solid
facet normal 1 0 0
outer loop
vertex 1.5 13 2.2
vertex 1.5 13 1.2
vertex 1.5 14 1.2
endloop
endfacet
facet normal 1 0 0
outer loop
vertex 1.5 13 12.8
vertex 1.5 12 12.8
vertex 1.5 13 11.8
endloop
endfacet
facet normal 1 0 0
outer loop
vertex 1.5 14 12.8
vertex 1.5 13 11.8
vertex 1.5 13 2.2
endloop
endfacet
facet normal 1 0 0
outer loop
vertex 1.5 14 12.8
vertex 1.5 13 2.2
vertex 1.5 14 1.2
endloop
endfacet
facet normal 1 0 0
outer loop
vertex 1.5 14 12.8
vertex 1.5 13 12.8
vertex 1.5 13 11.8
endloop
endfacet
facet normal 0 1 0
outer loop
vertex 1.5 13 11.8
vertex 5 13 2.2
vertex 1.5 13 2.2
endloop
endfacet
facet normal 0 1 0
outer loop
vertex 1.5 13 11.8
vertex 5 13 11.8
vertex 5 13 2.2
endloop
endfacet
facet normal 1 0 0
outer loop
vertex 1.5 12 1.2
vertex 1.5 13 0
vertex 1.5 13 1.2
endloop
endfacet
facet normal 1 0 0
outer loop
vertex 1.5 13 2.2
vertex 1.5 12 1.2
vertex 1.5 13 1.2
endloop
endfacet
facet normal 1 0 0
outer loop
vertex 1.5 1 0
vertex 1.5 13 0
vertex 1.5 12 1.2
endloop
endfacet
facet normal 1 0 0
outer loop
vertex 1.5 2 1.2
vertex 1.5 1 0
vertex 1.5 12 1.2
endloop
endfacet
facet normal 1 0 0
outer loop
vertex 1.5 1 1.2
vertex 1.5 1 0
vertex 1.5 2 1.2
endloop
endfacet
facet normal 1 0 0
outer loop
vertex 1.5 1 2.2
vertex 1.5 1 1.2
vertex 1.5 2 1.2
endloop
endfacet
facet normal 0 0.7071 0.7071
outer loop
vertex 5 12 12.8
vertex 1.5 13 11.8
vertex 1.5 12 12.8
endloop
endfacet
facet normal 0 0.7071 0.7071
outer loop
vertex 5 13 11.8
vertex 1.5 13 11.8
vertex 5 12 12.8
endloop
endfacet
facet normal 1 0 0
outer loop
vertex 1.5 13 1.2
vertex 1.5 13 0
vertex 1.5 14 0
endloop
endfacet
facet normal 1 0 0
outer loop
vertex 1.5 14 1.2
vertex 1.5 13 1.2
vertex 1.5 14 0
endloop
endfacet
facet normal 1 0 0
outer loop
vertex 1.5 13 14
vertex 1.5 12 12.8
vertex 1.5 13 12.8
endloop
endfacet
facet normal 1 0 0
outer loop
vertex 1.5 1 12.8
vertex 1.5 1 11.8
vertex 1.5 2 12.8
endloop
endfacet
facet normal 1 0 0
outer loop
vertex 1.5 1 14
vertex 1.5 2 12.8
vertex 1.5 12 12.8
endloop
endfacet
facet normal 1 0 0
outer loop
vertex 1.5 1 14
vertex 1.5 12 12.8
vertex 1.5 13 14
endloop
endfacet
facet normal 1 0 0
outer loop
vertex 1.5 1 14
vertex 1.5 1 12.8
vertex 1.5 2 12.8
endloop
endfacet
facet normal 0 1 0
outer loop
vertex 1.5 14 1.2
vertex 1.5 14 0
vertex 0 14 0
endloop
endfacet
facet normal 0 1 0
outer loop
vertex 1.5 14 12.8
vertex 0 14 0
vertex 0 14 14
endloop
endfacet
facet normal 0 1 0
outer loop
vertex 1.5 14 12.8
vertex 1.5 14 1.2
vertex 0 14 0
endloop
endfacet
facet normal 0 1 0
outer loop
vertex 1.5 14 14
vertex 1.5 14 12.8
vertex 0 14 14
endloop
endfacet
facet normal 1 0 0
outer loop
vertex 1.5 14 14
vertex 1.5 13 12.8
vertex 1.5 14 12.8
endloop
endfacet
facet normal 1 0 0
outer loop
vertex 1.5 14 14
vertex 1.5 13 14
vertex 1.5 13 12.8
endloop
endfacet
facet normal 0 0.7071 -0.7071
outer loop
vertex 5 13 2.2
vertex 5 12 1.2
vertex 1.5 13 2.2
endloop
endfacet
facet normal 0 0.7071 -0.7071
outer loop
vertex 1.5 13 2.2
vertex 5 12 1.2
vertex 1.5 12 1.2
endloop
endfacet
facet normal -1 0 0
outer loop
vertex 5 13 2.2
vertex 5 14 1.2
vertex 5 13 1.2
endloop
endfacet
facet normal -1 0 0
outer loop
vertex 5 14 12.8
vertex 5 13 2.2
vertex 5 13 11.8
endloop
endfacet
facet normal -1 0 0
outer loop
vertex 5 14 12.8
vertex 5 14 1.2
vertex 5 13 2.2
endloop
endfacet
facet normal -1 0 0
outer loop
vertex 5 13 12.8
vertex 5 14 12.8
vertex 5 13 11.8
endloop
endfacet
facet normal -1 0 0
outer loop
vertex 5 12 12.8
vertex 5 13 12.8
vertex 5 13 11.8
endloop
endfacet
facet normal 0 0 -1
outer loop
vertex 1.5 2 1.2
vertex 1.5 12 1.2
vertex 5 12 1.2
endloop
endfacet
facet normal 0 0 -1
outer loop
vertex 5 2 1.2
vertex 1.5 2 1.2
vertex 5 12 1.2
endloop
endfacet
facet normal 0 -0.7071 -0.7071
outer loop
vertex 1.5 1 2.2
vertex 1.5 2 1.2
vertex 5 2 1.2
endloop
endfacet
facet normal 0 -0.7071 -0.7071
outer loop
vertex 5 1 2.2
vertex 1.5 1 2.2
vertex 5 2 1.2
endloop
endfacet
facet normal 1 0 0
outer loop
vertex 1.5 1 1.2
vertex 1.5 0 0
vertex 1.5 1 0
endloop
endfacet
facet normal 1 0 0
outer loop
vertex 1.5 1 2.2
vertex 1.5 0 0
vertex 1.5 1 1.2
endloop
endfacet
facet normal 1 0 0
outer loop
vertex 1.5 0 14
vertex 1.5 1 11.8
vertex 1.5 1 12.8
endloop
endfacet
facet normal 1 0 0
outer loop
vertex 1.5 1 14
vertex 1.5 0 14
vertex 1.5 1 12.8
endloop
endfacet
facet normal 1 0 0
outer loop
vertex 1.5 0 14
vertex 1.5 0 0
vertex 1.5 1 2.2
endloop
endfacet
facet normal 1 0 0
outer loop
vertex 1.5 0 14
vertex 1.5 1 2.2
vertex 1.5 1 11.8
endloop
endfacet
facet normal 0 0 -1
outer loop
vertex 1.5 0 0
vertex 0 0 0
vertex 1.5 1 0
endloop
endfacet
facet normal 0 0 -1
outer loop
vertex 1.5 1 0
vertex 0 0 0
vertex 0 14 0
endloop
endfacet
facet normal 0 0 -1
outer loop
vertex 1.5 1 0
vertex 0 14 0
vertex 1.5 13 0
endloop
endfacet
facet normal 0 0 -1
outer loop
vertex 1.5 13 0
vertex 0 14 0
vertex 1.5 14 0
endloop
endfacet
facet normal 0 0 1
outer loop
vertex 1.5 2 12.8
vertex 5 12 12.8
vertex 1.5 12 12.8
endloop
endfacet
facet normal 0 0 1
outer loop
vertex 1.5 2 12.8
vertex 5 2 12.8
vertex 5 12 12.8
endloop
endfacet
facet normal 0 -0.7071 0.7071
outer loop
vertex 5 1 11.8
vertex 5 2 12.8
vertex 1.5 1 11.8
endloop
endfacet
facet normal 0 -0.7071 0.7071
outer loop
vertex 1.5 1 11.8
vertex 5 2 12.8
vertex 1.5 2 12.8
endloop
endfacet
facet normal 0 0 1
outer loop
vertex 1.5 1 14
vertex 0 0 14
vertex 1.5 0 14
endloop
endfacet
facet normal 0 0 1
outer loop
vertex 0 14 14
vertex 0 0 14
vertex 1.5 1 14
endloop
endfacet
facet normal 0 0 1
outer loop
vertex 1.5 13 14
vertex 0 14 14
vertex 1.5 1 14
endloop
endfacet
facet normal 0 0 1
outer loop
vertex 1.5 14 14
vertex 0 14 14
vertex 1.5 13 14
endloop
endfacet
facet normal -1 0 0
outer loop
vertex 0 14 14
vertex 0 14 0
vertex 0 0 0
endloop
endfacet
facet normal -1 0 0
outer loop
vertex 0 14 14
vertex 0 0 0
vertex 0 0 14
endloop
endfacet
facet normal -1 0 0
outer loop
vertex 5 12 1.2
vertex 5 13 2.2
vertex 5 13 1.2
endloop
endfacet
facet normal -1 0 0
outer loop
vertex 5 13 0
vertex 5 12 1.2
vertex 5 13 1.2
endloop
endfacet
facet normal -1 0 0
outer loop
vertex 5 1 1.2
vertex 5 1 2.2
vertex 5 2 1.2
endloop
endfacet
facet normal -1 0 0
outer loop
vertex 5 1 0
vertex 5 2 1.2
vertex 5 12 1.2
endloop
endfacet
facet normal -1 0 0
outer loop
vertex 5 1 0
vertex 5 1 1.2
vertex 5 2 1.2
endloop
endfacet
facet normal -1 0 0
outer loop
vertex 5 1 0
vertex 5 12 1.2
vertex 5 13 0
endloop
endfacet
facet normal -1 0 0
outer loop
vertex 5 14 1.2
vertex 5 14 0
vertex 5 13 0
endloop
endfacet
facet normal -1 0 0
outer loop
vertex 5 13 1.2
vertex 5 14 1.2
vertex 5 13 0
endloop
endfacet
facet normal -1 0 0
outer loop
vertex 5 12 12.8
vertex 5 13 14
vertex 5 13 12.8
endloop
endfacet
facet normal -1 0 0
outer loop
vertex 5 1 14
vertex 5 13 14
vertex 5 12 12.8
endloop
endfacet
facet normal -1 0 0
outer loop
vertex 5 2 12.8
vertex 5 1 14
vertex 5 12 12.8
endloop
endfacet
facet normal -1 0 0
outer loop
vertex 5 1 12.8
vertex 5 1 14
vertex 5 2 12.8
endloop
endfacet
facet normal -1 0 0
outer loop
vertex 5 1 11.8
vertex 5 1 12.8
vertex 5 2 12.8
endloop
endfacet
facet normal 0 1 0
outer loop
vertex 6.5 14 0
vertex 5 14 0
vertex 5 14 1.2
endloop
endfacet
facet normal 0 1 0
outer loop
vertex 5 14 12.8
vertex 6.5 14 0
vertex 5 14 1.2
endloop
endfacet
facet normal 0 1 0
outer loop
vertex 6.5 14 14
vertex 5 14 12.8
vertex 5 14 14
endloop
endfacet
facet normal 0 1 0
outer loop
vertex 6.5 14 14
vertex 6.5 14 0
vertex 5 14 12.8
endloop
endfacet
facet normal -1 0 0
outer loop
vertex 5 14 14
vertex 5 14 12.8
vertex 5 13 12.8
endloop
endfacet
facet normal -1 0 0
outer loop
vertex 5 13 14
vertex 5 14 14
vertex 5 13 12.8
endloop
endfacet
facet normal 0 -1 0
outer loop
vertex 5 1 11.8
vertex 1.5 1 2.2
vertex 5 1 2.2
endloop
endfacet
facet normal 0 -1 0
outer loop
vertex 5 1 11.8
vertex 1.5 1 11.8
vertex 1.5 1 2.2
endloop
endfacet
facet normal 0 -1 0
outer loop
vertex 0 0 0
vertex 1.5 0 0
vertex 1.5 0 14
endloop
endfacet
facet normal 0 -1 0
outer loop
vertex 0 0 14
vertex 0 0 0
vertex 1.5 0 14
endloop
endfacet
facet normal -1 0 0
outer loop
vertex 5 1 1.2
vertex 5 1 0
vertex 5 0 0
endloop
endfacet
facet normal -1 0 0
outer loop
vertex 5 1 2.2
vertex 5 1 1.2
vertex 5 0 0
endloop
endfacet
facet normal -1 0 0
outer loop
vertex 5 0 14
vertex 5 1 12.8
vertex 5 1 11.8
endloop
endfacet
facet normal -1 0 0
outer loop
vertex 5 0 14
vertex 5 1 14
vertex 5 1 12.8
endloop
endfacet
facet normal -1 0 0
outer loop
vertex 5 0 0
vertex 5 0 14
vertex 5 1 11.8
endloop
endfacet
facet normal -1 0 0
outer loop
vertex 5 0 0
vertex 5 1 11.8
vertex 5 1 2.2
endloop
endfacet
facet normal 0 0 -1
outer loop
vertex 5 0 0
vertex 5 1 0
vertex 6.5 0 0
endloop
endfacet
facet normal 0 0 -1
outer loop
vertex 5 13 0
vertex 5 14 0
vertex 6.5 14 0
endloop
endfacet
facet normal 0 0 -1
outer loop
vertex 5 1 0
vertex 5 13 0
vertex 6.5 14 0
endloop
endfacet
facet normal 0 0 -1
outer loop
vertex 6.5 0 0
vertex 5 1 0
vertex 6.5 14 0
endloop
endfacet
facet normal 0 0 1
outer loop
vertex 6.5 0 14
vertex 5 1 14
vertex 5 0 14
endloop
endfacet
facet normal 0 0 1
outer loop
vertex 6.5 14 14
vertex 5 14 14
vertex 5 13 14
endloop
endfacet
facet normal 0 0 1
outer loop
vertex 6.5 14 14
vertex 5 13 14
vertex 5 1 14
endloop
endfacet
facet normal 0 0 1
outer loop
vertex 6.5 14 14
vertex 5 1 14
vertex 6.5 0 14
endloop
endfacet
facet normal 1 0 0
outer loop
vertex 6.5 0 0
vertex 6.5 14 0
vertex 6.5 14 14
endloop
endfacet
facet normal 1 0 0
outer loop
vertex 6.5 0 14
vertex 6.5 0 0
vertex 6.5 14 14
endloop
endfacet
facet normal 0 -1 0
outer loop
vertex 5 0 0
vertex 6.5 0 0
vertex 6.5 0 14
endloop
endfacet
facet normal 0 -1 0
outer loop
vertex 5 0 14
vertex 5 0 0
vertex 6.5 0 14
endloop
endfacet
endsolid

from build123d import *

# Parameters (mm, degrees)
BOX_W           = 6.5
BOX_H           = 14
BOX_DEPTH       = 14
SKETCH_W        = 3.5
SKETCH_H        = 1
POCKET_DEPTH    = 14
SKETCH001_W     = 3.5
SKETCH001_H     = 1.2
POCKET001_DEPTH = 14
CHAMFER_SIZE    = 1
CHAMFER001_SIZE = 1
CHAMFER002_SIZE = 1
CHAMFER003_SIZE = 1


with BuildPart() as part:
    # Box → Box (new body)
    with BuildSketch(Plane.XY):
        with Locations((3.25, 7)):
            Rectangle(BOX_W, BOX_H)
    extrude(amount=BOX_DEPTH)

    # Sketch → Pocket (cut)
    with BuildSketch(Plane.XY.offset(14)):
        with Locations((3.25, 13.5)):
            Rectangle(SKETCH_W, SKETCH_H)
        with Locations((3.25, 0.5)):
            Rectangle(SKETCH_W, SKETCH_H)
    extrude(amount=-POCKET_DEPTH, mode=Mode.SUBTRACT)

    # Sketch001 → Pocket001 (cut)
    with BuildSketch(Plane.XZ.offset(-1)):
        with Locations((3.25, 13.4)):
            Rectangle(SKETCH001_W, SKETCH001_H)
        with Locations((3.25, 0.6)):
            Rectangle(SKETCH001_W, SKETCH001_H)
    extrude(amount=-POCKET001_DEPTH, mode=Mode.SUBTRACT)

    # Chamfer
    chamfer_edges = [part.edges().sort_by_distance(p)[0] for p in [
        (3.25, 1, 12.8),
    ]]
    chamfer(chamfer_edges, length=CHAMFER_SIZE)

    # Chamfer001
    chamfer001_edges = [part.edges().sort_by_distance(p)[0] for p in [
        (3.25, 1, 1.2),
    ]]
    chamfer(chamfer001_edges, length=CHAMFER001_SIZE)

    # Chamfer002
    chamfer002_edges = [part.edges().sort_by_distance(p)[0] for p in [
        (3.25, 13, 12.8),
    ]]
    chamfer(chamfer002_edges, length=CHAMFER002_SIZE)

    # Chamfer003
    chamfer003_edges = [part.edges().sort_by_distance(p)[0] for p in [
        (3.25, 13, 1.2),
    ]]
    chamfer(chamfer003_edges, length=CHAMFER003_SIZE)


solid = part.part
